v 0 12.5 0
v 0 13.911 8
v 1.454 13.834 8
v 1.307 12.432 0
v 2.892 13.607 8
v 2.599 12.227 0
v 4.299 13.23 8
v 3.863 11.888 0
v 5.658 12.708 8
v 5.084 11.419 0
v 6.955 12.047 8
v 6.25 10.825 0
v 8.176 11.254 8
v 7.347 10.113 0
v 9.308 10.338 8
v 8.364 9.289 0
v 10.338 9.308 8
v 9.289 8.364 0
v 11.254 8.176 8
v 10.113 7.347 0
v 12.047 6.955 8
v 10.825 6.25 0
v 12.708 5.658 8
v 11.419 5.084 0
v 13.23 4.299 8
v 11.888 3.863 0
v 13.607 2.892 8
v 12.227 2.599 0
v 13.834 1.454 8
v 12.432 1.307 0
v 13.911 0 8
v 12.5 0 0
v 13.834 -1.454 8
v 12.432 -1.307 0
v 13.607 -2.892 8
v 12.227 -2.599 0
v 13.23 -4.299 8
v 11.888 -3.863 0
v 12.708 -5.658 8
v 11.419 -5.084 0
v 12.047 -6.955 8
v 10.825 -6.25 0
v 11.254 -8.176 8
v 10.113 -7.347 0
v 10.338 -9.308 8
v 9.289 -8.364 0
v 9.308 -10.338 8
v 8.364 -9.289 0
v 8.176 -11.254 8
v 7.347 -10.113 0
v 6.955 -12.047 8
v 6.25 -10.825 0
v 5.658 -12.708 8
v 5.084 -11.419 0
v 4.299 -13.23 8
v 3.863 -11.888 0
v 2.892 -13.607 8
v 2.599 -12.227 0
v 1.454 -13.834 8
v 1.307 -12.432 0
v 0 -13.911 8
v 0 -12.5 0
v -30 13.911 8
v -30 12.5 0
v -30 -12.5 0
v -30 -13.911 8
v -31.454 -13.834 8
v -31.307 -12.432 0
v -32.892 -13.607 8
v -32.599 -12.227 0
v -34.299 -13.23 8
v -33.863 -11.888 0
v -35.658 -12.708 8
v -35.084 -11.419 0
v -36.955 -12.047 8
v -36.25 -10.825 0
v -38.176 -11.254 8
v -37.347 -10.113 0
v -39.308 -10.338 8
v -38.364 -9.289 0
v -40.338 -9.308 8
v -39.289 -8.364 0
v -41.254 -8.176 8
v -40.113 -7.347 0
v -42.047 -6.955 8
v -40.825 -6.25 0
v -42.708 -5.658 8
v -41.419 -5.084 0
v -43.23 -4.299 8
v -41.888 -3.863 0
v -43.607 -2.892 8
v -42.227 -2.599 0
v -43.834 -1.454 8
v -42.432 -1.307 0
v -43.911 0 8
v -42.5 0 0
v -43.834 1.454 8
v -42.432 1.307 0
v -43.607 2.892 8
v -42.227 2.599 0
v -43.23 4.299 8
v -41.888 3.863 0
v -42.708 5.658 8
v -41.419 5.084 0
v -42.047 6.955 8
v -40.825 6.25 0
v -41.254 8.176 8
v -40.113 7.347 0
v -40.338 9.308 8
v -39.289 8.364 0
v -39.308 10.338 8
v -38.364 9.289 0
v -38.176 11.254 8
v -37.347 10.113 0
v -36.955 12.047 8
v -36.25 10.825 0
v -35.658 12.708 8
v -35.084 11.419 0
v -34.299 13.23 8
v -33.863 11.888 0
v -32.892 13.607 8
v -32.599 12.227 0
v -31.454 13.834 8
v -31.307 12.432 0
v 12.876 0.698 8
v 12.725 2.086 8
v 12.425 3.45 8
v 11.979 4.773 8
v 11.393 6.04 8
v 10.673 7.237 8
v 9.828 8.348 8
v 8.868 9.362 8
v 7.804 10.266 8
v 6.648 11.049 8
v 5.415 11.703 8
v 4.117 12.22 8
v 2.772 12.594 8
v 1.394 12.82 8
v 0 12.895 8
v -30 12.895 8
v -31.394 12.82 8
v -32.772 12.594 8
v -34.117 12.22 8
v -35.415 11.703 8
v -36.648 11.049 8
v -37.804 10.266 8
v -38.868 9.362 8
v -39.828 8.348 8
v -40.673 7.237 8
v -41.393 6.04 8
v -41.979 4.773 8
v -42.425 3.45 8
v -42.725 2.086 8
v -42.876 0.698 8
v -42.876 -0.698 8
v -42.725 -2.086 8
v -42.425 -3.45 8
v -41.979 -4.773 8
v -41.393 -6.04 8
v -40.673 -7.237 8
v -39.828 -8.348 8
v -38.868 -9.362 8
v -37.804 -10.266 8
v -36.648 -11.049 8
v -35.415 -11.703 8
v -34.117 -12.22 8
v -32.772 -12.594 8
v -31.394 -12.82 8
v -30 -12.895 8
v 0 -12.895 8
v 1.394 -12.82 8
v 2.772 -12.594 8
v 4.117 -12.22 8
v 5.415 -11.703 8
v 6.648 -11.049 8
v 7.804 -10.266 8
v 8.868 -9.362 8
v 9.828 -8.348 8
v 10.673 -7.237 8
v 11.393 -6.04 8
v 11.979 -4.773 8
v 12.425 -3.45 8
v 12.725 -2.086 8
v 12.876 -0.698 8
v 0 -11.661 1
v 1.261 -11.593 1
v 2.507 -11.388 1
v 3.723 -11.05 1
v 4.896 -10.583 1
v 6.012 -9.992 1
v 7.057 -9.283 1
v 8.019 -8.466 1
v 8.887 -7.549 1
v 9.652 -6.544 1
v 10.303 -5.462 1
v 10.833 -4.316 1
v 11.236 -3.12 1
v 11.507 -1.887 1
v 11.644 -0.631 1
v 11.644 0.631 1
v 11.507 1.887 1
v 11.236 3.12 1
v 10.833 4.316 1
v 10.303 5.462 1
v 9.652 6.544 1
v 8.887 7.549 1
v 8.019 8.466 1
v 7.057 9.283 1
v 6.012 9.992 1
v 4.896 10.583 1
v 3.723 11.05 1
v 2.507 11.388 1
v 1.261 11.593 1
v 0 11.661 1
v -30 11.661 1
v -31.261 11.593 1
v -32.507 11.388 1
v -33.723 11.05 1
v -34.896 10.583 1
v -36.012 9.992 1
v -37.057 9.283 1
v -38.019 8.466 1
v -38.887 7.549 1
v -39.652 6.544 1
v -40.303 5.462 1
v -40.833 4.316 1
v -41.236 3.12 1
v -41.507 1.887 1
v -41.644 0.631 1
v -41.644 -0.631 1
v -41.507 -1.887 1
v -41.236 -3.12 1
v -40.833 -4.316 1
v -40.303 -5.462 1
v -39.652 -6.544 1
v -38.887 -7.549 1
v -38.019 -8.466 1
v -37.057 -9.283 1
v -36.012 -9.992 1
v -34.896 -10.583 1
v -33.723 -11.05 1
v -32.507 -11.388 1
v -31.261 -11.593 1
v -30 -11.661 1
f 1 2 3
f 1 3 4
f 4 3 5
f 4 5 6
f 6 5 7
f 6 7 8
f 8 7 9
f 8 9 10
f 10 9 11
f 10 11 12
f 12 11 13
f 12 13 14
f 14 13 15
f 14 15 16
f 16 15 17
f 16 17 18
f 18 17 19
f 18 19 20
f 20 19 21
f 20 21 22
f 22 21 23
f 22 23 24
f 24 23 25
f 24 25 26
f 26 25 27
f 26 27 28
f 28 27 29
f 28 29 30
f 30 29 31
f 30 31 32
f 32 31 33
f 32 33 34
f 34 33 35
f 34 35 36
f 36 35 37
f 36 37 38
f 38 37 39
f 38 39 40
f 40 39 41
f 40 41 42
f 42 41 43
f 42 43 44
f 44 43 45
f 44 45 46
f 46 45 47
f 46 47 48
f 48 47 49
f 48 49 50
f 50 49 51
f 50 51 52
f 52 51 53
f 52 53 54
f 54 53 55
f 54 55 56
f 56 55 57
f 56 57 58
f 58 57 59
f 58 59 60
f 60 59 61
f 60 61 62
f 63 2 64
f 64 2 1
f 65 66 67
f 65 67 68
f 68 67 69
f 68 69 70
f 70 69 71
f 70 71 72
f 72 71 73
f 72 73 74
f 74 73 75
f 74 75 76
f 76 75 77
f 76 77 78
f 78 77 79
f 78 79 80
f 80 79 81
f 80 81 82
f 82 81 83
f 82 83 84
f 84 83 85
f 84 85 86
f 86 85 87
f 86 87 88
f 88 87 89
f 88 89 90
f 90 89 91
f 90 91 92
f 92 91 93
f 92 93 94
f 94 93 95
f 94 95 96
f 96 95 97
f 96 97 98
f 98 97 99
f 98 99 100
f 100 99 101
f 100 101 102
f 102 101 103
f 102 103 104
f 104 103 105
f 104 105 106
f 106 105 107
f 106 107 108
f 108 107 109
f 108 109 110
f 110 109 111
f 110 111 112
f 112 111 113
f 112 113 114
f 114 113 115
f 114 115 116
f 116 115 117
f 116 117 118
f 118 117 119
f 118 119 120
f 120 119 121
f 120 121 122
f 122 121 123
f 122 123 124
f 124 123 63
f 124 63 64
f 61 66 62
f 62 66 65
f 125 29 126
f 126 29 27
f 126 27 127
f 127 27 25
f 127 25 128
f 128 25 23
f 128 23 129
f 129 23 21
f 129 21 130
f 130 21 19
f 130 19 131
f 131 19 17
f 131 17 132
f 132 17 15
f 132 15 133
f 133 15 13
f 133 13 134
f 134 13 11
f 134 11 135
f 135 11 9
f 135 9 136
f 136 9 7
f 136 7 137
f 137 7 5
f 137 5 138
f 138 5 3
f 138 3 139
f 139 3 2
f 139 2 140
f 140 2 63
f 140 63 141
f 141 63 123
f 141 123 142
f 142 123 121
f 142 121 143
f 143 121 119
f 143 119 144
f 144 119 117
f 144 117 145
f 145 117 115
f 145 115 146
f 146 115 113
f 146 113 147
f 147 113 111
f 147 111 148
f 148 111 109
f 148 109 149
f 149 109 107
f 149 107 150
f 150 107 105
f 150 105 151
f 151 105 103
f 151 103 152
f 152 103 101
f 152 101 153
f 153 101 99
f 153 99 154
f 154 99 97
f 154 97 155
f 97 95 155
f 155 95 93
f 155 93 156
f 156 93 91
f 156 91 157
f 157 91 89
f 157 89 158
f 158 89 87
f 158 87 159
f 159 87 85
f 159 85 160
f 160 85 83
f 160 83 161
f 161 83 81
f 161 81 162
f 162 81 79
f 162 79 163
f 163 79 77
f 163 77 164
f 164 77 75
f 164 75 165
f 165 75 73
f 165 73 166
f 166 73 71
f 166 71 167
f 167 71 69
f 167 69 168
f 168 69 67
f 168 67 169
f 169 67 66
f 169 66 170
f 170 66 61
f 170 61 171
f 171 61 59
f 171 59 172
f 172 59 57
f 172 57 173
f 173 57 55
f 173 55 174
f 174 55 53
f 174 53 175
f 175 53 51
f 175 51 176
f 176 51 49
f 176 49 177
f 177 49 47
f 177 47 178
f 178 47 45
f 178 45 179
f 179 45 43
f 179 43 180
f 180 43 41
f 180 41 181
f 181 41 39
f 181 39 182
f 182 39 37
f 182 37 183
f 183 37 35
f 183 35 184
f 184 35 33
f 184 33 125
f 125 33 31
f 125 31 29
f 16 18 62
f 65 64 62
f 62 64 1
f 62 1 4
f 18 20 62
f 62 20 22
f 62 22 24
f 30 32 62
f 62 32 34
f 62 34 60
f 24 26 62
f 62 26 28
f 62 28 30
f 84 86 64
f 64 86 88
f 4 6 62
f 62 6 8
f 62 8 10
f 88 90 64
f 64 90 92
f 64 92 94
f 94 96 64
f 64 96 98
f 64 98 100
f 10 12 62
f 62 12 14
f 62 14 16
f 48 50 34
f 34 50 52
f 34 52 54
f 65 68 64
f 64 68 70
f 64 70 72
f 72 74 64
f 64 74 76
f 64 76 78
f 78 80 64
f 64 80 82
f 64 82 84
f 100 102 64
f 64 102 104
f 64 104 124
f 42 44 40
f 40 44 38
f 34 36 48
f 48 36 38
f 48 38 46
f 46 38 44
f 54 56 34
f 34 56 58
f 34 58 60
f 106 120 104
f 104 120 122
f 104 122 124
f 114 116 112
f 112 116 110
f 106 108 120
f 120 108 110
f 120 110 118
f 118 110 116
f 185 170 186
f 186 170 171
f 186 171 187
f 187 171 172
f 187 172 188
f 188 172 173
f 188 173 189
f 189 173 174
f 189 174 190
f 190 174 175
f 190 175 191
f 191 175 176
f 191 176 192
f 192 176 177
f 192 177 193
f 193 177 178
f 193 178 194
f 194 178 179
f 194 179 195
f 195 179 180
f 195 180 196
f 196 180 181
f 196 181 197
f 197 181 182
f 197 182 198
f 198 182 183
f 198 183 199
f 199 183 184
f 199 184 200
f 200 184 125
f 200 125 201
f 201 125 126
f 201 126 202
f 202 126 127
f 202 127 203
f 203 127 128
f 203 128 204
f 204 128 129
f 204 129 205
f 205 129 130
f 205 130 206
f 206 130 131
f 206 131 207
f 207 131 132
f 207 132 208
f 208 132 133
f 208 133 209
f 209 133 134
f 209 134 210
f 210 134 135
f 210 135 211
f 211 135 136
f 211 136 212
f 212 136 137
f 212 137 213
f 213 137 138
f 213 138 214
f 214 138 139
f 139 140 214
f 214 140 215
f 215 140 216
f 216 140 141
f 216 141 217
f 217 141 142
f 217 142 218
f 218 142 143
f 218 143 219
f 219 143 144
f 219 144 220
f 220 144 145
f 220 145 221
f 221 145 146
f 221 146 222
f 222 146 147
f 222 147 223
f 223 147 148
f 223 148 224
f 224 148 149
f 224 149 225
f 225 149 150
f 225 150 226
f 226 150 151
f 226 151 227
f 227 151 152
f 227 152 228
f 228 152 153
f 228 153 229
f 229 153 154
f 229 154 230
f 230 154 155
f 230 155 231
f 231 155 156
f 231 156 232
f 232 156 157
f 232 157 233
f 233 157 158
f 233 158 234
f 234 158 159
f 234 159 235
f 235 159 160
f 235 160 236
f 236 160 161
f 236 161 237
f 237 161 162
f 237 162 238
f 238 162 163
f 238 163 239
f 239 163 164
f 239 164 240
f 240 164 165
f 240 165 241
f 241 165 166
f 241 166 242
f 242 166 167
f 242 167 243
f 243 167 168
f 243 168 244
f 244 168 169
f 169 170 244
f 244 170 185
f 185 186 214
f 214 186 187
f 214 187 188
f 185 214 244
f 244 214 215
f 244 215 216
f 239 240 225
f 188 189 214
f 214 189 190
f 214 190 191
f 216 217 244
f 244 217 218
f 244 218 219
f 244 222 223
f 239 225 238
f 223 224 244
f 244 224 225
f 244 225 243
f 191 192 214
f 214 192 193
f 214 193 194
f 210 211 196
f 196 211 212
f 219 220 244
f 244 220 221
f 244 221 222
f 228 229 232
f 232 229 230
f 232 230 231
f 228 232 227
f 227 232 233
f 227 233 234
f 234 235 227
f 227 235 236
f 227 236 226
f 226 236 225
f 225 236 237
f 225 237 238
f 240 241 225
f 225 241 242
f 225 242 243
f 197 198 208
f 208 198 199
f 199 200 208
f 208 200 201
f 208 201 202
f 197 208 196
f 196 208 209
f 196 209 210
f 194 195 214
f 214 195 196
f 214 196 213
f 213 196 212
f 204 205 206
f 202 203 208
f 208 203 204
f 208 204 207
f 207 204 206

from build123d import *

# Parameters (mm, degrees)
BOSS_EXTRUDE1_DEPTH = 8
BOSS_EXTRUDE1_DRAFT = -10
SHELL1_T            = -1


with BuildPart() as part:
    # Sketch1 → Boss-Extrude1 (with draft: the straight prism first)
    with BuildSketch(Plane.XY):
        with BuildLine():
            ThreePointArc((0, -12.5), (12.5, 0), (0, 12.5))
            Line((0, 12.5), (-30, 12.5))
            ThreePointArc((-30, 12.5), (-42.5, 0), (-30, -12.5))
            Line((-30, -12.5), (0, -12.5))
        make_face()
    extrude(amount=BOSS_EXTRUDE1_DEPTH)
    # Boss-Extrude1: the draft: its side faces are tilted about the plane it starts from
    boss_extrude1_sides = [part.faces().sort_by_distance(p)[0] for p in [
        (-15, -12.5, 4),
        (12.5, 0, 4),
        (-15, 12.5, 4),
        (-42.5, 0, 4),
    ]]
    draft(boss_extrude1_sides, Plane.XY, BOSS_EXTRUDE1_DRAFT)

    # Shell1
    shell1_openings = [part.faces().sort_by_distance(p)[0] for p in [
        (-15, 0, 8),
    ]]
    offset(amount=SHELL1_T, openings=shell1_openings, kind=Kind.INTERSECTION)


solid = part.part
